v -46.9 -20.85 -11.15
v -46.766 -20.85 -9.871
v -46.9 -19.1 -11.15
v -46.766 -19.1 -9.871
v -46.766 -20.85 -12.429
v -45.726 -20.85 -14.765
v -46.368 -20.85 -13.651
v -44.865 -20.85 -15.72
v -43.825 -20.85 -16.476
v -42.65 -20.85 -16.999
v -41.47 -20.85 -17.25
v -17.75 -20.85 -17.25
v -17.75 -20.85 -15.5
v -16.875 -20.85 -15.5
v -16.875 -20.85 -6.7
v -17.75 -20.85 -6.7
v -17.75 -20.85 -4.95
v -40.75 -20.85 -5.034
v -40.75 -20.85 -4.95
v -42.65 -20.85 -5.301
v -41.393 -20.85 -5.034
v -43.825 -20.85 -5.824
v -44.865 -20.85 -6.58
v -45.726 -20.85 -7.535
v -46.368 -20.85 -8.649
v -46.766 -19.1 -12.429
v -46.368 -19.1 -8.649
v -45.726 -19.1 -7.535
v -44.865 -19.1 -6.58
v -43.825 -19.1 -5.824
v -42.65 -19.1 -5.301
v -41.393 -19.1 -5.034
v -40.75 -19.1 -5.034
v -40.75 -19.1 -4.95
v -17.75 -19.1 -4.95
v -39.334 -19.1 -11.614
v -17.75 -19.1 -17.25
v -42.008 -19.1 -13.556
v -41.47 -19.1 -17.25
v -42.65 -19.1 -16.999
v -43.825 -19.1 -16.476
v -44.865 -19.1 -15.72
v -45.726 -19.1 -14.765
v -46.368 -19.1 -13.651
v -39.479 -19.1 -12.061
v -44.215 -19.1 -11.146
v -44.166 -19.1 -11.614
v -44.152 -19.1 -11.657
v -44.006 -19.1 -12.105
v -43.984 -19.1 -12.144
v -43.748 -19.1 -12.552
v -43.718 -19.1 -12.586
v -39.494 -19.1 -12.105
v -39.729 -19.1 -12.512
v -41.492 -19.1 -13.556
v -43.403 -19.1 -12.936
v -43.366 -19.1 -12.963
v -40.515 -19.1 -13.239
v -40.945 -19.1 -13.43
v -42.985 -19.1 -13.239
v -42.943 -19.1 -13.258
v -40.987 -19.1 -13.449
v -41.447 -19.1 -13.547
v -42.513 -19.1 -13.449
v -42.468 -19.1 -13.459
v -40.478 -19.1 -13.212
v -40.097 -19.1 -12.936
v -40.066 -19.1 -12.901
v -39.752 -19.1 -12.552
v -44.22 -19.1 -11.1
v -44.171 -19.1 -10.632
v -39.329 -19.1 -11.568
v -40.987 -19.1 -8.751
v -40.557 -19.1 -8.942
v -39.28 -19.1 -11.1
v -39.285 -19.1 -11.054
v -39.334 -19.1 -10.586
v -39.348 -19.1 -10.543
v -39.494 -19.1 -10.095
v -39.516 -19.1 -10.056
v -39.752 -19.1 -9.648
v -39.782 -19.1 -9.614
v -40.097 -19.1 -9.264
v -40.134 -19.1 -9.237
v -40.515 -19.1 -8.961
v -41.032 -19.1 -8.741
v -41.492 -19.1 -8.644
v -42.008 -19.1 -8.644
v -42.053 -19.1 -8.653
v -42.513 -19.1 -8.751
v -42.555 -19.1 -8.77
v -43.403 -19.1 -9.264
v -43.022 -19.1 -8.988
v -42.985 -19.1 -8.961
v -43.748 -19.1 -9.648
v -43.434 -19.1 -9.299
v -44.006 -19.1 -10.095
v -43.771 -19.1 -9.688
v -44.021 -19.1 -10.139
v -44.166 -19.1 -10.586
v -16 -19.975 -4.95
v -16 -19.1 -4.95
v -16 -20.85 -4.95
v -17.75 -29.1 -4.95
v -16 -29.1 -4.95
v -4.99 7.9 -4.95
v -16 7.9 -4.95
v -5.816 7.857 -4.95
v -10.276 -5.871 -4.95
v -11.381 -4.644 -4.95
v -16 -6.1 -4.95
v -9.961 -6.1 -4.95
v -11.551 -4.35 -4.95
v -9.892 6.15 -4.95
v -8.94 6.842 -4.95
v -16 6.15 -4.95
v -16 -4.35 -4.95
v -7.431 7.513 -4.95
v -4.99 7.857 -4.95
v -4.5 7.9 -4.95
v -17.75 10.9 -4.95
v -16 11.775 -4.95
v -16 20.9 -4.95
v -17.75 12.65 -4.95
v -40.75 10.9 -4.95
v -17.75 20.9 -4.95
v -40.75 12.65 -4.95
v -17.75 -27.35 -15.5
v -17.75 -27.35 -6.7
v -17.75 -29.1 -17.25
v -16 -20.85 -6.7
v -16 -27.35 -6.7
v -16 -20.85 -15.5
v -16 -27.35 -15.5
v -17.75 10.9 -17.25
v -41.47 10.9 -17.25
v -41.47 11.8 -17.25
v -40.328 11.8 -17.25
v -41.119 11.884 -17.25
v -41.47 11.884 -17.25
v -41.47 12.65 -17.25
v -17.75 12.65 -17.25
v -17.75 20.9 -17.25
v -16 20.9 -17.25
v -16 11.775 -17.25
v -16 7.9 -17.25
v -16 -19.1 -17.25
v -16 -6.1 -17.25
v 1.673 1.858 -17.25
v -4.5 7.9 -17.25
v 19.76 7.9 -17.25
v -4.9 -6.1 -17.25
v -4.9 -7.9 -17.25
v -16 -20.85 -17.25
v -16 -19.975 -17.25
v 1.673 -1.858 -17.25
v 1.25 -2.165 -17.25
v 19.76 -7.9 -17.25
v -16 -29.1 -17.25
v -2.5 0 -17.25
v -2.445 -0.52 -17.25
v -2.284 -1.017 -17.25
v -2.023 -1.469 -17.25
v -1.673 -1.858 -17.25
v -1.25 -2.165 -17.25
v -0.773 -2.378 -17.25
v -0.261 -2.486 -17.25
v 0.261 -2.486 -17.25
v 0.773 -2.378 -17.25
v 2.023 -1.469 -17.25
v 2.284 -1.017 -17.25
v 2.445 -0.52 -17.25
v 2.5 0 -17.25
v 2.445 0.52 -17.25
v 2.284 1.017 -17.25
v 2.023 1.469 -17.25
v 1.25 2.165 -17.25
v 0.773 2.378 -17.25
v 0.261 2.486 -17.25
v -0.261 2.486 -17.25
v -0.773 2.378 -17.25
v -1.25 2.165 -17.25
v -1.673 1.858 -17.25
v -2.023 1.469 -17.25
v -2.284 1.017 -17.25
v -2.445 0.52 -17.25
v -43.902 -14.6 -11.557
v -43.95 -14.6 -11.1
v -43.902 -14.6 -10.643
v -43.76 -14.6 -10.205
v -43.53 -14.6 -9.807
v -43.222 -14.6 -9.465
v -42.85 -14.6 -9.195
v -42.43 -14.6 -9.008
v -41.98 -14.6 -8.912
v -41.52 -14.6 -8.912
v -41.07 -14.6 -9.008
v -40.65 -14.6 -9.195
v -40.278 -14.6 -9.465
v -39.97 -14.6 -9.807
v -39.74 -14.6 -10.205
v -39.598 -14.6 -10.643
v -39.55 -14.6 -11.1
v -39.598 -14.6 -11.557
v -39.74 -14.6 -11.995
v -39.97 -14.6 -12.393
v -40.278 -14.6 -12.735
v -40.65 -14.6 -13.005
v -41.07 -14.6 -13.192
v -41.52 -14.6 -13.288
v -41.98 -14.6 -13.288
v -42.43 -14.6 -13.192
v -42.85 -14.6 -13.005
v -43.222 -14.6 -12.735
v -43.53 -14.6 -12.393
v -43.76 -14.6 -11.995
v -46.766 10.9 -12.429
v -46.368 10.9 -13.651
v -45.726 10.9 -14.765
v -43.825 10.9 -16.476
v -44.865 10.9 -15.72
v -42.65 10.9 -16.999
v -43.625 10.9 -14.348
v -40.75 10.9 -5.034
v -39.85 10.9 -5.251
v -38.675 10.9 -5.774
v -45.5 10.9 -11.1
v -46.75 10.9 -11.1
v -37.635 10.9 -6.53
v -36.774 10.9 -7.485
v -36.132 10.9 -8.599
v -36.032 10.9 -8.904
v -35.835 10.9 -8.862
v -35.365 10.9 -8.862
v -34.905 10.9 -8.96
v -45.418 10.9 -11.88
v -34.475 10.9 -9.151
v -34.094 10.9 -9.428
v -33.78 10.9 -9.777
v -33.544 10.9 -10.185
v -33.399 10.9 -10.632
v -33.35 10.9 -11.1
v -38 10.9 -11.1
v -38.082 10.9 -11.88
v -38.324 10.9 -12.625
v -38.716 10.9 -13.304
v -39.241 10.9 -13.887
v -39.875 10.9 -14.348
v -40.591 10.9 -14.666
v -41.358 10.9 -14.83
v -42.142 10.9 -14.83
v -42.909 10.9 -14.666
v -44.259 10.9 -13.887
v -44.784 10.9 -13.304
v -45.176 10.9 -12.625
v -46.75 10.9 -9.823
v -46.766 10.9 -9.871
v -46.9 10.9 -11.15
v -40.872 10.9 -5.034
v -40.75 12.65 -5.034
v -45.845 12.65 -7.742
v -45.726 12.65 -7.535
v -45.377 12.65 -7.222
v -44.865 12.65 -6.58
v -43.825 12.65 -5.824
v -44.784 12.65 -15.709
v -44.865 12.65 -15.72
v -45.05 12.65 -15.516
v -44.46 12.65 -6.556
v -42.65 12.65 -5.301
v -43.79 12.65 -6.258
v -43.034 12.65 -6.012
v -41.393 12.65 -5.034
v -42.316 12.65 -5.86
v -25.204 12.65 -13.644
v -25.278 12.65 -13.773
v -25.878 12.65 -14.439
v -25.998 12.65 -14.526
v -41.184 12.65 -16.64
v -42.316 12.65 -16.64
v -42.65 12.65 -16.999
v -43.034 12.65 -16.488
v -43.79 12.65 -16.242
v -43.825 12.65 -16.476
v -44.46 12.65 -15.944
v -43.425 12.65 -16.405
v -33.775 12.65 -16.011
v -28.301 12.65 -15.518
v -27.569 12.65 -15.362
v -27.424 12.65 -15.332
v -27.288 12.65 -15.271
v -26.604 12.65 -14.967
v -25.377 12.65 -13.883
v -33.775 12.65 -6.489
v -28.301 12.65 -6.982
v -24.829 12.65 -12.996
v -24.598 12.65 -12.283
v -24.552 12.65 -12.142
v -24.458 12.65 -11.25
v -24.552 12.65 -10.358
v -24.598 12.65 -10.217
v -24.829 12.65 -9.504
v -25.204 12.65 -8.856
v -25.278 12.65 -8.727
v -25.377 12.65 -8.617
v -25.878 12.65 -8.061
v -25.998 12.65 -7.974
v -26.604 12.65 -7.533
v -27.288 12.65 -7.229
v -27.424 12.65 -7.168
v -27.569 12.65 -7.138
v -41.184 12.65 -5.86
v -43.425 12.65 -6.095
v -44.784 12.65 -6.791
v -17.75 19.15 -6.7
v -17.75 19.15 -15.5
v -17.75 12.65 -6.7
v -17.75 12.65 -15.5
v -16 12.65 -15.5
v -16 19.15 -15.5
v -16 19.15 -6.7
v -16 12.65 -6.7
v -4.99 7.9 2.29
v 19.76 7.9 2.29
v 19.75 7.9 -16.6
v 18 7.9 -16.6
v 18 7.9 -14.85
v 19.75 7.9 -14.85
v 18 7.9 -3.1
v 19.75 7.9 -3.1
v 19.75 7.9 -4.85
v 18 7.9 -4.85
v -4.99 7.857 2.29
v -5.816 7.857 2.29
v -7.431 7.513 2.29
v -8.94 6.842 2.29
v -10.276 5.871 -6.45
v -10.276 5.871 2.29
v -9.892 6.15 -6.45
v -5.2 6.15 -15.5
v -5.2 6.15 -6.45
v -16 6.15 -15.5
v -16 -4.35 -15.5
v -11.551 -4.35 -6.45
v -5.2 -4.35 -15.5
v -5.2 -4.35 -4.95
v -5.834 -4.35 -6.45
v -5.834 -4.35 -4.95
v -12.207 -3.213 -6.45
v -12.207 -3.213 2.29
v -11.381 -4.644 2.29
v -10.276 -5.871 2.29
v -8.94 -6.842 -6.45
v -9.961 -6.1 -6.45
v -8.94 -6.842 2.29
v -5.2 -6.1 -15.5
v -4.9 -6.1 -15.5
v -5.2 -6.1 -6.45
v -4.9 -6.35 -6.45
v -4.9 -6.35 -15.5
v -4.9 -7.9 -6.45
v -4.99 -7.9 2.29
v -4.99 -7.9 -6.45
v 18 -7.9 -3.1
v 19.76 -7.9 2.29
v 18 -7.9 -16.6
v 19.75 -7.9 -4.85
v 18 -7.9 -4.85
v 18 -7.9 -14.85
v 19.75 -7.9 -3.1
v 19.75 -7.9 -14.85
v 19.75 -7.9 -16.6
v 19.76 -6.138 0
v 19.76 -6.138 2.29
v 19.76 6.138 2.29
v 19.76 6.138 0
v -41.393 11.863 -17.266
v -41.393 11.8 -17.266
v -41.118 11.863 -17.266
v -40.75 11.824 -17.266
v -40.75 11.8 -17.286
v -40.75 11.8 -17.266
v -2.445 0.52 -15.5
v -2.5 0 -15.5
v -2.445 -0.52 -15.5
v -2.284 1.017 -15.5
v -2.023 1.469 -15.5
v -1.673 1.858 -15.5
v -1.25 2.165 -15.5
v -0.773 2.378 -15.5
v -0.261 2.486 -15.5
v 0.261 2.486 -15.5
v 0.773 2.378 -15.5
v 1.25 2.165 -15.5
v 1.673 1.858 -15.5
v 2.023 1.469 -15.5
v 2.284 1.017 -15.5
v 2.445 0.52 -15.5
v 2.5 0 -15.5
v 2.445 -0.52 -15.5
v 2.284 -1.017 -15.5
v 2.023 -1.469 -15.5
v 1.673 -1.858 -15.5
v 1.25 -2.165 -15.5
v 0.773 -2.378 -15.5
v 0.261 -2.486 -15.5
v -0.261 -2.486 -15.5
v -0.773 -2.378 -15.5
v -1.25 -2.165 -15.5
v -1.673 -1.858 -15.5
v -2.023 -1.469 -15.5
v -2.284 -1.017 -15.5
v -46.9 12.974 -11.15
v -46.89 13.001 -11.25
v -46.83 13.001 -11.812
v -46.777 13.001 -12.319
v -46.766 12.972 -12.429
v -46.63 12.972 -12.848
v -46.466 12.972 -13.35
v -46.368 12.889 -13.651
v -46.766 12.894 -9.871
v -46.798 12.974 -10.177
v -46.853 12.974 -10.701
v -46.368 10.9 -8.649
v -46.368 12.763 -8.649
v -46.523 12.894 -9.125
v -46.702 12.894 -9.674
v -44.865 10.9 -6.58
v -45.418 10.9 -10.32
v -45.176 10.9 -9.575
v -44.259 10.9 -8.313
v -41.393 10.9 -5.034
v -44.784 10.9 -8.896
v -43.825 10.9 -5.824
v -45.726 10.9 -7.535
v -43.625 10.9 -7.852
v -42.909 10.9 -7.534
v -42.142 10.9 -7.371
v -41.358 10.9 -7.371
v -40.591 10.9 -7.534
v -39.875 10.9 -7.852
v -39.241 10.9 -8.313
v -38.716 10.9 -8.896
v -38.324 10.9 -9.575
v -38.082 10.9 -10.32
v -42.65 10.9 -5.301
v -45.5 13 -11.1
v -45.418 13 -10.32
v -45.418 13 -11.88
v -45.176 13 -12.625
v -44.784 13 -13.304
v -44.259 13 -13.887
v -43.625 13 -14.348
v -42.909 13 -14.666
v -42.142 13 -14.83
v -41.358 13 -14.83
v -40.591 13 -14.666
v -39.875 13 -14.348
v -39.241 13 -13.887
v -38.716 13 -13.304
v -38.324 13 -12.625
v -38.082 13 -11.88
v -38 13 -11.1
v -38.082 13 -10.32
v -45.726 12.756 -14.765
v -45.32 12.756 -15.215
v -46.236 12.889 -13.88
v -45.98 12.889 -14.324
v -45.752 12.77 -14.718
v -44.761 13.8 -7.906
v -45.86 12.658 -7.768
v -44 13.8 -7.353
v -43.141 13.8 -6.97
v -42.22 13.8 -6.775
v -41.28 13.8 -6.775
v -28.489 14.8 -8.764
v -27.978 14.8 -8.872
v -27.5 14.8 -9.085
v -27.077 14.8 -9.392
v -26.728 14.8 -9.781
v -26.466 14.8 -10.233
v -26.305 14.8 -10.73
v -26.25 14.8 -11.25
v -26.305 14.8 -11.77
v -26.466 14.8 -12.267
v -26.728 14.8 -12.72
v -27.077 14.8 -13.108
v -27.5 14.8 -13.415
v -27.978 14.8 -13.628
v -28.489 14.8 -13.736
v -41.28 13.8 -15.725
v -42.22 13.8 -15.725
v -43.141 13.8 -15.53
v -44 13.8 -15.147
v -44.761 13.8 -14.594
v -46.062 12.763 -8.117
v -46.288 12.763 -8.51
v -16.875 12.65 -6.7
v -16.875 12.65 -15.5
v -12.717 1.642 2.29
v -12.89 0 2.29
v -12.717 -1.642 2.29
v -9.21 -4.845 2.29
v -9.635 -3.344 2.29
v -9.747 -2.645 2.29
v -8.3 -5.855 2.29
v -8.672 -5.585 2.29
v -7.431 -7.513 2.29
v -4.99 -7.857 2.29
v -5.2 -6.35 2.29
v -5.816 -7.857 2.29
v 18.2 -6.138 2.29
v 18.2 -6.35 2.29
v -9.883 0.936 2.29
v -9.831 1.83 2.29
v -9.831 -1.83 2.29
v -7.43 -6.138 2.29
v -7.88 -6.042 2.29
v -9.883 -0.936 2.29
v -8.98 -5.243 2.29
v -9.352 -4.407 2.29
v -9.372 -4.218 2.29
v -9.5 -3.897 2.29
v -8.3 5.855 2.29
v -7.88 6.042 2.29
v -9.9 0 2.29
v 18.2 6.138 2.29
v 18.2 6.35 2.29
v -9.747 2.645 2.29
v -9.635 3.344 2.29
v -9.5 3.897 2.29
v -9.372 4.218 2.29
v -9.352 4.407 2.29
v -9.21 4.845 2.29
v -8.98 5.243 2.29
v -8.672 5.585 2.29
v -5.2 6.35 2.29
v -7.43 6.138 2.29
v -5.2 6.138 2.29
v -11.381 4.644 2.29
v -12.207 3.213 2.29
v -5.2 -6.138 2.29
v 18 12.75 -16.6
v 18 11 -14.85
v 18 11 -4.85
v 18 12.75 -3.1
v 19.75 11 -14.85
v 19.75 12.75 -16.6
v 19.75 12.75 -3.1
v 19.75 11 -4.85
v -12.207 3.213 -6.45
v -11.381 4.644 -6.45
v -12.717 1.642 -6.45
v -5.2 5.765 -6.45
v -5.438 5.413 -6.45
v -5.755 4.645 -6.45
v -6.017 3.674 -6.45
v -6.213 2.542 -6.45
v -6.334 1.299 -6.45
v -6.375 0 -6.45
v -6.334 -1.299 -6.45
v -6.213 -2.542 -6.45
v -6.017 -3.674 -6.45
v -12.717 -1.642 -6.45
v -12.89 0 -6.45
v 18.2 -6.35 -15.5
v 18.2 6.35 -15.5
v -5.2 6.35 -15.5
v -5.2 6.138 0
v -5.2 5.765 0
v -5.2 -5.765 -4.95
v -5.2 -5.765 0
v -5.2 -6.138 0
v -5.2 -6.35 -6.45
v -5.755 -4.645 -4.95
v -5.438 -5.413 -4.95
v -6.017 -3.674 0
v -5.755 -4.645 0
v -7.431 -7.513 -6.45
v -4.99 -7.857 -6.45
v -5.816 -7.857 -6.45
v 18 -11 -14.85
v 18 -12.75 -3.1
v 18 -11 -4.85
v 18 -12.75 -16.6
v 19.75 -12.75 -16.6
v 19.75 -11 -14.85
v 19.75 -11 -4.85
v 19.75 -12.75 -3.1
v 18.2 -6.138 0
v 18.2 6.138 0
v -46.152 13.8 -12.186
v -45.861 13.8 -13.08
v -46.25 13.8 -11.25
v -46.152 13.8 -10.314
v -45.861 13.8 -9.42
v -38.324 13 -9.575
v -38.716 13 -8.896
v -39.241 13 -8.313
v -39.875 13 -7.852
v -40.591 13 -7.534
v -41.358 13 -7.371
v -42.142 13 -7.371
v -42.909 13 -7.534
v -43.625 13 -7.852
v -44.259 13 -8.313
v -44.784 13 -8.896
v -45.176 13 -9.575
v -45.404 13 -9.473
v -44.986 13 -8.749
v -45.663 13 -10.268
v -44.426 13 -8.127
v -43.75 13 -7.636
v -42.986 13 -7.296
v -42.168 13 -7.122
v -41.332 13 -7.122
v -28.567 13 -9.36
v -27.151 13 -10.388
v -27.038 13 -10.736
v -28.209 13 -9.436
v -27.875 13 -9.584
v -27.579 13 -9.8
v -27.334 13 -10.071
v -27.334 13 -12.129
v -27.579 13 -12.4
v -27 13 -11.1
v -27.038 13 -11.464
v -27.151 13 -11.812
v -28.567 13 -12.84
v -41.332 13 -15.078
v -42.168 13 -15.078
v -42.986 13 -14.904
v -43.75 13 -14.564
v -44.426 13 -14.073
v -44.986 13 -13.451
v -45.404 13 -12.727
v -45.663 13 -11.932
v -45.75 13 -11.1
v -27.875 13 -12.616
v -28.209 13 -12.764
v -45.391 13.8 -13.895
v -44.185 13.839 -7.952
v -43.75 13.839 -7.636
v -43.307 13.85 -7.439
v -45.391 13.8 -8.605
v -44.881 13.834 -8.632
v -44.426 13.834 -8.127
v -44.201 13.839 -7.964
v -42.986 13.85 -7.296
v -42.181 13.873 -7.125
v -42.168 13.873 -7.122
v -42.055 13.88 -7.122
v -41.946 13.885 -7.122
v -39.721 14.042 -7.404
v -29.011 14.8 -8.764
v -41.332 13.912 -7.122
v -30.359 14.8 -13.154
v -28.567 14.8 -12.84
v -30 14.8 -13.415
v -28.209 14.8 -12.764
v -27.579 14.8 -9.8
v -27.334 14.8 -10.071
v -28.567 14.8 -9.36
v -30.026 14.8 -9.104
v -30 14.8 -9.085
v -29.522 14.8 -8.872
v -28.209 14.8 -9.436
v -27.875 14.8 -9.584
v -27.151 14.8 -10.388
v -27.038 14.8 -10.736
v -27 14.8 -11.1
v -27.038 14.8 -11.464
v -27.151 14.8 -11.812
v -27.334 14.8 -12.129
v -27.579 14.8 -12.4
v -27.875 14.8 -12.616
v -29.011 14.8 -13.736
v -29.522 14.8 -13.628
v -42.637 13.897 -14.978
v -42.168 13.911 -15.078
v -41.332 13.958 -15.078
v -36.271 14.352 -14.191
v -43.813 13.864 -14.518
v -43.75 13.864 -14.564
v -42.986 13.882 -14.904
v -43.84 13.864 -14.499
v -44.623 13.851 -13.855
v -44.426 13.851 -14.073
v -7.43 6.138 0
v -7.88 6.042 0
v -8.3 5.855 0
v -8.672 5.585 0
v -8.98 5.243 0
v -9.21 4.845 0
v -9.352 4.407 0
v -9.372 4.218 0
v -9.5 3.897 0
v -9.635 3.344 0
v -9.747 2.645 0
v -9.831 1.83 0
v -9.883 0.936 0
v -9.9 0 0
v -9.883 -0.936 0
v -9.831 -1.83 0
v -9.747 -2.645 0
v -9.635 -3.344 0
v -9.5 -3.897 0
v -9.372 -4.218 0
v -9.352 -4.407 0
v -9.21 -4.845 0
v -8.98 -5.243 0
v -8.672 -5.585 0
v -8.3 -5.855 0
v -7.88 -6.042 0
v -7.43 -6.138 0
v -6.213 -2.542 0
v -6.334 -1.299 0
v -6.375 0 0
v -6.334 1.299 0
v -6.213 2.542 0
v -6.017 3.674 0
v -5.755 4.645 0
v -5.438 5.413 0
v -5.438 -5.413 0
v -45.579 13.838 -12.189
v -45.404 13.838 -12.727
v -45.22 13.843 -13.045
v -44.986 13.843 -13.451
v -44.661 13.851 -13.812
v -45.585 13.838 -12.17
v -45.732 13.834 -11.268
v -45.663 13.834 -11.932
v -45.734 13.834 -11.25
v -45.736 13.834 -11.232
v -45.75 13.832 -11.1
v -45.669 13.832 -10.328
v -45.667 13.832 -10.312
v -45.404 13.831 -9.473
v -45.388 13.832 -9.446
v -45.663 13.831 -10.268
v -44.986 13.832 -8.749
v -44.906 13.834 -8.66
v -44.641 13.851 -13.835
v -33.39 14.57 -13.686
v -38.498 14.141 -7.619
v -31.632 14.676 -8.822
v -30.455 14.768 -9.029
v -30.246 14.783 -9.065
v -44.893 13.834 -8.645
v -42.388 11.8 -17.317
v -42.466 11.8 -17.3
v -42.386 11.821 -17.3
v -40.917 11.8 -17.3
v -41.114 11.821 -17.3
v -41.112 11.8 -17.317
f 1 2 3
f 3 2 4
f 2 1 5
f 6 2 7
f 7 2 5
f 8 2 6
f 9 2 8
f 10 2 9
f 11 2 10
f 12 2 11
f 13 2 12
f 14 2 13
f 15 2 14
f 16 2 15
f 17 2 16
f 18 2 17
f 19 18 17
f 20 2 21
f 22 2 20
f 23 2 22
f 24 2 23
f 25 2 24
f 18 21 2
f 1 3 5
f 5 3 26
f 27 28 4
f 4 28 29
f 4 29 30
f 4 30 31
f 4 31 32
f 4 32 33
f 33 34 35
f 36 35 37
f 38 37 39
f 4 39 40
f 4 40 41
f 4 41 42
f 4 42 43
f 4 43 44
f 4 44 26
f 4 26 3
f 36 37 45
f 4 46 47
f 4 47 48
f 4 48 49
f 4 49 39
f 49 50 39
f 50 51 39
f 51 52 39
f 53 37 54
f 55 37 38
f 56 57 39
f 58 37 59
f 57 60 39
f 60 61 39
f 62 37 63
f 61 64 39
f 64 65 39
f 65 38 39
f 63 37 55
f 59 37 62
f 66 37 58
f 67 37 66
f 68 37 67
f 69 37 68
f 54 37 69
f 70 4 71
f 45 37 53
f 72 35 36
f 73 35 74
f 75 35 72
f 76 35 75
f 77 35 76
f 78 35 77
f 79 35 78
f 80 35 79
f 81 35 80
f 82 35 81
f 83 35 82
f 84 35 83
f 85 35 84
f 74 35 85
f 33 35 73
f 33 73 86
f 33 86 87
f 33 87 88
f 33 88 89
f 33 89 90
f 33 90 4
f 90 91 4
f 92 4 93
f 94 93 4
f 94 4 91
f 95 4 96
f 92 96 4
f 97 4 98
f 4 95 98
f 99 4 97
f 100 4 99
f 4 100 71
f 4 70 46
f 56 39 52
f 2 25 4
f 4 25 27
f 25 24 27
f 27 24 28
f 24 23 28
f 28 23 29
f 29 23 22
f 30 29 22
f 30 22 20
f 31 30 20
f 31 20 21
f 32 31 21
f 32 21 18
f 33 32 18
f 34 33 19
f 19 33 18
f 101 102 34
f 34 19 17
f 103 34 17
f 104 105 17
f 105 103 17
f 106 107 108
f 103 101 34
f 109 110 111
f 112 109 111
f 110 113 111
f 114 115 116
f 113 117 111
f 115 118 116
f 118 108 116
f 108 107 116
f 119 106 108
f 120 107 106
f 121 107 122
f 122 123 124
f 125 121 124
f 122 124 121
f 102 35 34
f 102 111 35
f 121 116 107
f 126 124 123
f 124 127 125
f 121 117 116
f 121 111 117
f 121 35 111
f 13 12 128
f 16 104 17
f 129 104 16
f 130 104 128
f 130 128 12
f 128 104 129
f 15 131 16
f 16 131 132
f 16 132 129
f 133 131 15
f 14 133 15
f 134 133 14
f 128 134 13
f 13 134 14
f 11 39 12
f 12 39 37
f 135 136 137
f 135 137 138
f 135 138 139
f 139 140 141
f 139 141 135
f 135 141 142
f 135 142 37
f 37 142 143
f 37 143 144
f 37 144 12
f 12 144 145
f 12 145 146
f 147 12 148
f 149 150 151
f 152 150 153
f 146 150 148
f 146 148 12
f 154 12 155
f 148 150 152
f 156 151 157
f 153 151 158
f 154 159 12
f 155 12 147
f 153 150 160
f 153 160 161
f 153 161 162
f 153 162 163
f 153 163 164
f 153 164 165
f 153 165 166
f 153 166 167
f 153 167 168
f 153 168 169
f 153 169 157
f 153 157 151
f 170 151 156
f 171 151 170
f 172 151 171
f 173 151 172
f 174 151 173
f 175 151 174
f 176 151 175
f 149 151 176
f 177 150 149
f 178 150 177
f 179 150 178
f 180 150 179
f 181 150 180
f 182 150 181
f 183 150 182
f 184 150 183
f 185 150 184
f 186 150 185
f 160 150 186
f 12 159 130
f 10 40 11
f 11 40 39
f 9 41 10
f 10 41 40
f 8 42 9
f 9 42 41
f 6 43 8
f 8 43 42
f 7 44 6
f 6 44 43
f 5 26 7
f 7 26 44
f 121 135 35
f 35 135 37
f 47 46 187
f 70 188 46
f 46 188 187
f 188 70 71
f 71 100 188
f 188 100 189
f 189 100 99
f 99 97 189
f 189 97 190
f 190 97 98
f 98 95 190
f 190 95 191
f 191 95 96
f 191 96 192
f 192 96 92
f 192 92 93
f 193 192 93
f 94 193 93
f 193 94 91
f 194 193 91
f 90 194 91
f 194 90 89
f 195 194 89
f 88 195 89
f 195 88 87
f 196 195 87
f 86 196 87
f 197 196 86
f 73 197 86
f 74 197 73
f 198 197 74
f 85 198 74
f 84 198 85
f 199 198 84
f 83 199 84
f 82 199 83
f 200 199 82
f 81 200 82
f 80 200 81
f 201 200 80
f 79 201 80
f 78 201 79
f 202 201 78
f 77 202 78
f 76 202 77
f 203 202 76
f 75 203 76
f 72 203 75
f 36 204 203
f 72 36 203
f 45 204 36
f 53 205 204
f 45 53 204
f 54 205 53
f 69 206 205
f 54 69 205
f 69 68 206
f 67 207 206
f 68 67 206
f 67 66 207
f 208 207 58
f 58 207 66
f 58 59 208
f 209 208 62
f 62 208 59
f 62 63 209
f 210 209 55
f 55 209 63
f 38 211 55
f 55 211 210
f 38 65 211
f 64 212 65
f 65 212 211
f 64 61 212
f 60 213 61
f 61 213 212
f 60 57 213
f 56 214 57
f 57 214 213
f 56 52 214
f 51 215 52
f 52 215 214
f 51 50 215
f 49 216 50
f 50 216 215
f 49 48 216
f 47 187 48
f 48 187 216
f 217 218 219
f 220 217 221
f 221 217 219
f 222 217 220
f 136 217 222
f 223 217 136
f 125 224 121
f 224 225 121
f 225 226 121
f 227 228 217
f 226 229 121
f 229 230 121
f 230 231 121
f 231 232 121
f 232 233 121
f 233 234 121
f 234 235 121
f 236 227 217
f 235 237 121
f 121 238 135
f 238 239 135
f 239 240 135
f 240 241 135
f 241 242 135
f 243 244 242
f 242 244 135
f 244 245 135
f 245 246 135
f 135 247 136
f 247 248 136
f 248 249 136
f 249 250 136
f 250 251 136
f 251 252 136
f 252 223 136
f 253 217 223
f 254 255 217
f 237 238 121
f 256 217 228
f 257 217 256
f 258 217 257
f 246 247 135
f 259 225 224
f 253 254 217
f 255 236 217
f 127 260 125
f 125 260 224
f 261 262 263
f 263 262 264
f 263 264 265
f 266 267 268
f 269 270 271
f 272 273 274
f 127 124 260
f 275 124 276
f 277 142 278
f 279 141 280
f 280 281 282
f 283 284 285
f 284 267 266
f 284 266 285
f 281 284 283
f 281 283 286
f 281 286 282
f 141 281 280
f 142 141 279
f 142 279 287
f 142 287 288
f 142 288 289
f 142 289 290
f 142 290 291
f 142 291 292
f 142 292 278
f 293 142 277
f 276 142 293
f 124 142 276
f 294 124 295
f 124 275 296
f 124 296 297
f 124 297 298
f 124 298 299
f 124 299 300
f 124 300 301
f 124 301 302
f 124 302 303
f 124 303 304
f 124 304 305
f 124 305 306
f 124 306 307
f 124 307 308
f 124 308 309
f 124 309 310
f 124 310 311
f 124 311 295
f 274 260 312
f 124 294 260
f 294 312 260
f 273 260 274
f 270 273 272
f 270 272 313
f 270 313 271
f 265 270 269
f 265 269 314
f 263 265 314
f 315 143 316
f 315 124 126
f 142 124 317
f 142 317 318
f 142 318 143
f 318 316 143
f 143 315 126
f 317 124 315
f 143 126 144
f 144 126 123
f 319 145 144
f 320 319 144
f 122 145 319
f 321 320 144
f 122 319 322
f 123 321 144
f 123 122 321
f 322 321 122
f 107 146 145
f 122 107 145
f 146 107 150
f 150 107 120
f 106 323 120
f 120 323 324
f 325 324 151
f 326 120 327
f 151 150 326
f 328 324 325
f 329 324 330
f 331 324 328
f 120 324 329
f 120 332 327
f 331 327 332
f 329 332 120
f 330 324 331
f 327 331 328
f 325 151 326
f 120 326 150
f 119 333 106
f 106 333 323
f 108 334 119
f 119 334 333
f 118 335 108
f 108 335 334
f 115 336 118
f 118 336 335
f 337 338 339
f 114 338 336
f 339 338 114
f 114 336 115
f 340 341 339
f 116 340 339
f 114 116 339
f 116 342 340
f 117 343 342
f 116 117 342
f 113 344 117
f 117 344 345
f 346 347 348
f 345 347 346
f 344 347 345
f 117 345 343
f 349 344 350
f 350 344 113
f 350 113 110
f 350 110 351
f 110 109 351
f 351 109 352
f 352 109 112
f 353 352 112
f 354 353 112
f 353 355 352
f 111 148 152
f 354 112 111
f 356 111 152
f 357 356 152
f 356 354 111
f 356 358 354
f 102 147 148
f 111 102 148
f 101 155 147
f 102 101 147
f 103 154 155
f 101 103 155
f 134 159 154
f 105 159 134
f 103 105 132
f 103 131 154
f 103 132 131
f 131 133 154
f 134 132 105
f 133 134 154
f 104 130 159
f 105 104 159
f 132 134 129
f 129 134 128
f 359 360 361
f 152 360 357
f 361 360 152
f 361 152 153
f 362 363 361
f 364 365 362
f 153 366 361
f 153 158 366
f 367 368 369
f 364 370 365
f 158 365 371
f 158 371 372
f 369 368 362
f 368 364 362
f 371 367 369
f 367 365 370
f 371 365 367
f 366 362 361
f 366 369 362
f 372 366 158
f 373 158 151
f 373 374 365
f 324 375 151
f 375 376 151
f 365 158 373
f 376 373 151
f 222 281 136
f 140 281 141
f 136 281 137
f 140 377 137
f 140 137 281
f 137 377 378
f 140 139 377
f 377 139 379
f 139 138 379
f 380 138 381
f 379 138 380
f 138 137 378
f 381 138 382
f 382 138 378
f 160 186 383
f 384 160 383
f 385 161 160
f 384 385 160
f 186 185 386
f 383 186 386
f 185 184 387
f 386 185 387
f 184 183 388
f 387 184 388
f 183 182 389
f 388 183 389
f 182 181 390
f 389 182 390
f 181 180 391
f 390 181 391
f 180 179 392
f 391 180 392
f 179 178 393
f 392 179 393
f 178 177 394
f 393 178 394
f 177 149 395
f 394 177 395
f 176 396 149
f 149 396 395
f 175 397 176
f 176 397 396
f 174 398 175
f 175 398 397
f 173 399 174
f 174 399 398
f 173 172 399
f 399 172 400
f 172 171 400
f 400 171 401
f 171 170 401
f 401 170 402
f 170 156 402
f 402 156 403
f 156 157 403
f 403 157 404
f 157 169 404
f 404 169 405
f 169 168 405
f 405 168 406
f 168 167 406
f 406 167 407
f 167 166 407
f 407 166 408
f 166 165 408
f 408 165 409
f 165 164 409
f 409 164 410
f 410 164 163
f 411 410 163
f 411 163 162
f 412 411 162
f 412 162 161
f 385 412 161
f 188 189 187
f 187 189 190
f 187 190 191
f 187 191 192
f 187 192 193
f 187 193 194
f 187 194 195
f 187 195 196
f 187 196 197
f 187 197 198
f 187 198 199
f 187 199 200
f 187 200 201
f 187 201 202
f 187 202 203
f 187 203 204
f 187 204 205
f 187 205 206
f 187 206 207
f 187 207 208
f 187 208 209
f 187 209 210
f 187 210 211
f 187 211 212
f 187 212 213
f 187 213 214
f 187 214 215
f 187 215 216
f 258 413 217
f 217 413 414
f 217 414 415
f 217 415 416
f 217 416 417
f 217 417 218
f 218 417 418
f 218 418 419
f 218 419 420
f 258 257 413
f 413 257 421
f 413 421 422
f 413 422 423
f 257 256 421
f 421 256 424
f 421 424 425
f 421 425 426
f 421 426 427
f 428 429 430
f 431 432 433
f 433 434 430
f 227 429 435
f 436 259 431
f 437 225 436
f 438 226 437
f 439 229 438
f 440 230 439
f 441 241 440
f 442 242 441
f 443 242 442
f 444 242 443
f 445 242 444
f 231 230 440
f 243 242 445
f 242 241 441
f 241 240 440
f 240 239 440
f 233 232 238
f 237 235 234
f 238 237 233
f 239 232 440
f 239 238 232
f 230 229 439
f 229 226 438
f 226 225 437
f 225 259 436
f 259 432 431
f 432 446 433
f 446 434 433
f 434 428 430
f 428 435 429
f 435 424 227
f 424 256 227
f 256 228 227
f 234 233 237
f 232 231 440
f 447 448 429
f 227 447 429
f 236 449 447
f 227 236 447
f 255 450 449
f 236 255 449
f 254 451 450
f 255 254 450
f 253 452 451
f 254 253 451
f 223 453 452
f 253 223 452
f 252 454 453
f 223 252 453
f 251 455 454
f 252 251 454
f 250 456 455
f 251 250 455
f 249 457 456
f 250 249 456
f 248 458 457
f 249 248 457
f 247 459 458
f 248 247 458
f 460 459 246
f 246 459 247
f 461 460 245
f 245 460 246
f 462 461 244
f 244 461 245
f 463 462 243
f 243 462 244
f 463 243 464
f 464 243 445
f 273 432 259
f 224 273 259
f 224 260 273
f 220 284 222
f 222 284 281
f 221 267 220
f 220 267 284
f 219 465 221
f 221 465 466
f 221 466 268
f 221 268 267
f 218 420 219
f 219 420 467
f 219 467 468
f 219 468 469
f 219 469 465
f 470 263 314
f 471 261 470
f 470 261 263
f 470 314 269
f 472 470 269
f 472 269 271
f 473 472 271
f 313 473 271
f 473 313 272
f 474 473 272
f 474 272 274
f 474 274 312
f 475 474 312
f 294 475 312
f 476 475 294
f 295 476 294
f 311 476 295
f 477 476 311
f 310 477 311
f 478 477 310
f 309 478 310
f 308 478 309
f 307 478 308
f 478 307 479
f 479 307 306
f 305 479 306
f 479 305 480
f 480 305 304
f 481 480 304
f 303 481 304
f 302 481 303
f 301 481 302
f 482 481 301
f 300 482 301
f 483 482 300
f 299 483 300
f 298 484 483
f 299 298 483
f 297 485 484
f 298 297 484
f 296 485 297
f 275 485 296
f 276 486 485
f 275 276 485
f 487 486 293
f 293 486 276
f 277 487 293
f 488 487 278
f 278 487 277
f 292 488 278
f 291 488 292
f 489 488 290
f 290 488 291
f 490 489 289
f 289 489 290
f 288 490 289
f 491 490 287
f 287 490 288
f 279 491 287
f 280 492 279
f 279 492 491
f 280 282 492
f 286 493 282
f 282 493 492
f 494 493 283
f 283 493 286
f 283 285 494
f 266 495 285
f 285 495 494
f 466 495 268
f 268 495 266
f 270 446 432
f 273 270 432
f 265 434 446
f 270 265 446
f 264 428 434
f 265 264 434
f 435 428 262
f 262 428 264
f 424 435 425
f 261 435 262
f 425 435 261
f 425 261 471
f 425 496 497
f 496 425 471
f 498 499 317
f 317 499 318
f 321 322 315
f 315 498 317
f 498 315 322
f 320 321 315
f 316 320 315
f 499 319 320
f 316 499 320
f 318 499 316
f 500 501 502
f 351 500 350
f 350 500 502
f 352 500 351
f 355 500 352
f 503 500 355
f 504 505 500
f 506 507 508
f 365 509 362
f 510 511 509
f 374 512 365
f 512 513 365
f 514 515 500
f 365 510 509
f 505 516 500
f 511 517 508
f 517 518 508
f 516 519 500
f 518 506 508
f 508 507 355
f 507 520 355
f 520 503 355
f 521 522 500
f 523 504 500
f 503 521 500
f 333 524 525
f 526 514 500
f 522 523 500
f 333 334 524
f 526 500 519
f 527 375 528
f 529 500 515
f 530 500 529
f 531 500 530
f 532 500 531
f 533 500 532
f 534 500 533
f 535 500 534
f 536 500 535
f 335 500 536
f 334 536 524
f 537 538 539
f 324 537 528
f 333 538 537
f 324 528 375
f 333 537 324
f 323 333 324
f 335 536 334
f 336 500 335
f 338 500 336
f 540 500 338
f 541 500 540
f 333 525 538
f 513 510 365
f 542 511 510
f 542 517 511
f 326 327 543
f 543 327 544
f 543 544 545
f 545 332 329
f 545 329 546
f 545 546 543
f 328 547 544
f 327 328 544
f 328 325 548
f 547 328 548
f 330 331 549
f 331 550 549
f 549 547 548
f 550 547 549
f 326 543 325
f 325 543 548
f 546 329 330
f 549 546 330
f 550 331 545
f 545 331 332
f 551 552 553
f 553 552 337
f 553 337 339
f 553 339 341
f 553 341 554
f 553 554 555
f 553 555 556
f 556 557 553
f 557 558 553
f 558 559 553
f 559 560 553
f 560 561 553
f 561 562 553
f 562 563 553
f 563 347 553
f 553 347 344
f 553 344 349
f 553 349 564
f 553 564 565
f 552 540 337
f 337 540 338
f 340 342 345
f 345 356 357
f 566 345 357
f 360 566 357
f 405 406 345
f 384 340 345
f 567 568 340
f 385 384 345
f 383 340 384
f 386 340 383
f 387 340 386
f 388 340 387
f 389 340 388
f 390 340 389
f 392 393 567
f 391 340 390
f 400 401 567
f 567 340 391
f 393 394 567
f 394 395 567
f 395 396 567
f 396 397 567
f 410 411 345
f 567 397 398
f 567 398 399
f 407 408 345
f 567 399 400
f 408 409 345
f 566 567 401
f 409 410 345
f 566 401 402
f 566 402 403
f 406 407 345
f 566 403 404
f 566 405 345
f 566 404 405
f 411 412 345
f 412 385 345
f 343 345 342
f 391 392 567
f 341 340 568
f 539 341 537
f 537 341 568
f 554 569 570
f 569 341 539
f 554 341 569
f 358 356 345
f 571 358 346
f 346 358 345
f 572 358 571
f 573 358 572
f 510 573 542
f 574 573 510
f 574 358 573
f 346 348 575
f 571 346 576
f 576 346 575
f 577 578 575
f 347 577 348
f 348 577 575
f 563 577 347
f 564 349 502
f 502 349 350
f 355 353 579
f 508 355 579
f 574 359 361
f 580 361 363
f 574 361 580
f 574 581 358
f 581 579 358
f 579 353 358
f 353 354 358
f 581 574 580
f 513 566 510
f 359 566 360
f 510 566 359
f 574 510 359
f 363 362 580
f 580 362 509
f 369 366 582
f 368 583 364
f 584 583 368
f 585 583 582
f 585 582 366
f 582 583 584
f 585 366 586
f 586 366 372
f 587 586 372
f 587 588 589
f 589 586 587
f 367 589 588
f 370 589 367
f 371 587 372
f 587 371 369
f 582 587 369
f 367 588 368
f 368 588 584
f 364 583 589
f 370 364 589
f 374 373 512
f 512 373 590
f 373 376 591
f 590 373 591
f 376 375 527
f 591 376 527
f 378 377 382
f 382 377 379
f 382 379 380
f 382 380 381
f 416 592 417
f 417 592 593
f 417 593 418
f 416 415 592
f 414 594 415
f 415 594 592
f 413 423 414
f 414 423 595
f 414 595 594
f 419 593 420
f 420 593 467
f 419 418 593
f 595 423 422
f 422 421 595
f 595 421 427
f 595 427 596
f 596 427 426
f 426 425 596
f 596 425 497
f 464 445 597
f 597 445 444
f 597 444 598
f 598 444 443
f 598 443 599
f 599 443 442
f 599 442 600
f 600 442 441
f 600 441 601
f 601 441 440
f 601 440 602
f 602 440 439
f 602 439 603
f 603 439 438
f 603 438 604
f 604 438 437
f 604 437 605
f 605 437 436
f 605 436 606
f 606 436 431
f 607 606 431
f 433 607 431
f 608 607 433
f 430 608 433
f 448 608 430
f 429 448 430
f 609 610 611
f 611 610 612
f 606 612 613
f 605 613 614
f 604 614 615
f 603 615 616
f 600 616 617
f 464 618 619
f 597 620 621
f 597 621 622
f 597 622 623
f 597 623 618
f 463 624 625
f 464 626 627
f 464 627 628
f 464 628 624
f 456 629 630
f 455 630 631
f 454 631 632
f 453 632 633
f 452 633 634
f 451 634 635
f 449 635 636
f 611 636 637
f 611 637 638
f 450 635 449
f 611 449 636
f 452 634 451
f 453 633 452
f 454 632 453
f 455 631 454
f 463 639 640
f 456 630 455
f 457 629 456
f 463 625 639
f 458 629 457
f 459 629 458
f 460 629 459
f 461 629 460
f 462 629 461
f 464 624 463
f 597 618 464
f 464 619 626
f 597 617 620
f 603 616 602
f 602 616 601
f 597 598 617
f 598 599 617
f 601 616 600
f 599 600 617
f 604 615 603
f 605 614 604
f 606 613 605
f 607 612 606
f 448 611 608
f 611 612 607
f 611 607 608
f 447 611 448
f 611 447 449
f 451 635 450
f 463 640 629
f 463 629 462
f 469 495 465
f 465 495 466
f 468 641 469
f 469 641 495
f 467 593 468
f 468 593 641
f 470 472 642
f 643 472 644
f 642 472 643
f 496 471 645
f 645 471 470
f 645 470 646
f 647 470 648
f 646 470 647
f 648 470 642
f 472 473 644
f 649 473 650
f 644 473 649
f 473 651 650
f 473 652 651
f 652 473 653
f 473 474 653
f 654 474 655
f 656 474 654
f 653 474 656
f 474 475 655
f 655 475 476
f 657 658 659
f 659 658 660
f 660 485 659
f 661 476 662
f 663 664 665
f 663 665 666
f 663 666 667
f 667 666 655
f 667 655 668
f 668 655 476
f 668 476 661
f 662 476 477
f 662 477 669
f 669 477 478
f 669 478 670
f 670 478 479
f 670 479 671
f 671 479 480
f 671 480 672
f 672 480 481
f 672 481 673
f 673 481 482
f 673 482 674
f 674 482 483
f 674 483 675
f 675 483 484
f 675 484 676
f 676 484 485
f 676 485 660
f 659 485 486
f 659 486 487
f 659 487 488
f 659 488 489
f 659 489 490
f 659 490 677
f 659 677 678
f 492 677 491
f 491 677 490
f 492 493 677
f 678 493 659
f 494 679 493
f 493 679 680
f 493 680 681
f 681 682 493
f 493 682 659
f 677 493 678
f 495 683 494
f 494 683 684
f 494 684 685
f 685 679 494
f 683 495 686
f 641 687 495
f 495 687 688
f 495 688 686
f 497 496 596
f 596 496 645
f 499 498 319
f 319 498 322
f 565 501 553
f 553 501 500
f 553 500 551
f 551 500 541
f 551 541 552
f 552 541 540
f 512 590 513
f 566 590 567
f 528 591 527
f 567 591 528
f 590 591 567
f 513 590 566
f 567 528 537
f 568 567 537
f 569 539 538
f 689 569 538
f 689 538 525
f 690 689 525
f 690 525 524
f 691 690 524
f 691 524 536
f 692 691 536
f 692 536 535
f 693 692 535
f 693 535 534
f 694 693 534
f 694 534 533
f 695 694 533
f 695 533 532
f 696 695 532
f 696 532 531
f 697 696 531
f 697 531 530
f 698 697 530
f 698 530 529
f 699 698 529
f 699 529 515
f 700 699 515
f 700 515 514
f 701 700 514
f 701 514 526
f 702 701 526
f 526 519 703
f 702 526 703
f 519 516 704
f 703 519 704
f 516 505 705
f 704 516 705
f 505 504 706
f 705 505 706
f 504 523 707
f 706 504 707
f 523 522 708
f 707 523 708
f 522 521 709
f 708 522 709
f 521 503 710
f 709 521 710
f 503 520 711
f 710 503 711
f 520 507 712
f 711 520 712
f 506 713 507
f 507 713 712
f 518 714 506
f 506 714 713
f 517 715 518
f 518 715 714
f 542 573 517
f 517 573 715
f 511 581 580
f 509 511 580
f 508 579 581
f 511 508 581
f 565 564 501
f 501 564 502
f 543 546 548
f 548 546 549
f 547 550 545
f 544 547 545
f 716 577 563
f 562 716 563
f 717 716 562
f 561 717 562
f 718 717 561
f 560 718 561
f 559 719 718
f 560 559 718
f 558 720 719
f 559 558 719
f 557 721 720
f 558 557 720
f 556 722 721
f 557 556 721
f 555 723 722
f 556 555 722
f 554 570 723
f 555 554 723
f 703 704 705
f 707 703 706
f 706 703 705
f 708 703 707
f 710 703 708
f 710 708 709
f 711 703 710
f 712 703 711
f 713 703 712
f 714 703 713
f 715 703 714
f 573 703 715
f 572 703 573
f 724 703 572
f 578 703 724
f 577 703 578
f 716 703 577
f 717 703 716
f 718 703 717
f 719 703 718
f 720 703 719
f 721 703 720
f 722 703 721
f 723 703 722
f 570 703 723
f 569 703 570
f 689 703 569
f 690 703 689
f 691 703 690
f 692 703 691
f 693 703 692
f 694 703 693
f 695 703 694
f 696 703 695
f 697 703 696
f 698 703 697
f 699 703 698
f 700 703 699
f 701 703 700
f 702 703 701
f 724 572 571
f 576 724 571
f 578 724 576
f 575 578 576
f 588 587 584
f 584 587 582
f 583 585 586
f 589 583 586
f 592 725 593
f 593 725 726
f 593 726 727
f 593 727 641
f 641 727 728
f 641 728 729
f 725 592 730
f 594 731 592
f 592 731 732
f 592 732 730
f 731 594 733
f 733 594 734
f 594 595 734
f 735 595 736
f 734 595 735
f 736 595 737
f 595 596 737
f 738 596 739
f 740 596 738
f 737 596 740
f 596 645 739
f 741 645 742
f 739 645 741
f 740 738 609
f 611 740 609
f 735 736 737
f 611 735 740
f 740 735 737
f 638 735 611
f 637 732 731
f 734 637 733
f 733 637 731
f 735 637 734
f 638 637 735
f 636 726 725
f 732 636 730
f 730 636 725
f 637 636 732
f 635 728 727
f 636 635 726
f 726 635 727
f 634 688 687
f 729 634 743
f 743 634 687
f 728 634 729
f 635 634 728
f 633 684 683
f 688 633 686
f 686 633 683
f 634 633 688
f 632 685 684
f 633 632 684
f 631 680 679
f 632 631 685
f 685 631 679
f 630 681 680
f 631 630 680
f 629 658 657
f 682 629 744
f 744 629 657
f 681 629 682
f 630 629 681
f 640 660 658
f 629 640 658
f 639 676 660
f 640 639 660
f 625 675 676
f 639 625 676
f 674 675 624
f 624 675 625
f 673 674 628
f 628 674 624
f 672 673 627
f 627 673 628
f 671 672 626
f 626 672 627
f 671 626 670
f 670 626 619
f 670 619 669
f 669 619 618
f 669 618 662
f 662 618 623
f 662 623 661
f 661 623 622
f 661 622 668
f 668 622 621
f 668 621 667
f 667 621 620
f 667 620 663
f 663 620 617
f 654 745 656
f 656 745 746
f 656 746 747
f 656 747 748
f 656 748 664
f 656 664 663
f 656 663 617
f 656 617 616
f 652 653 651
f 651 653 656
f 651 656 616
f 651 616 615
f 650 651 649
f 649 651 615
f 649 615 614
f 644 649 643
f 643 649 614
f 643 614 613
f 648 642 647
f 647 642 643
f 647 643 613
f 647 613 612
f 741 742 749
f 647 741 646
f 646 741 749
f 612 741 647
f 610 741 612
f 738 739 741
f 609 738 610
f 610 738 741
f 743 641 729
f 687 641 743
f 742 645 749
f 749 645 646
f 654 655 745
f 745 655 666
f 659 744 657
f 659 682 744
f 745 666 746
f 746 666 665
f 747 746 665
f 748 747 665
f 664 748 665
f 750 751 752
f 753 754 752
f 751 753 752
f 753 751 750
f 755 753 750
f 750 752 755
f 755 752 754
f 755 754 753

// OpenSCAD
// file: servo-s2309s.scad
ServoBody=[23,12.3,22];
FlangeToBottom=15.5;
Flange=[31.8,12.3,2.3];
FlangeBevel=2.2;
AxleOffset=5;
AxelRadius=4.9/2; //Without adaptor

wall=1.3;

//The amount of extra space around the servo.
ServoPadding=0;

BoltRadius=1;
$fs=0.2;

//************************************************************************
//*** Enable one of these to draw something from the this library of parts.
//***
//*** A number in the bracket of an adaptor part will rotate it by that
//*** number of degrees.
//************************************************************************
//draw_servo();
//Small_arm_adaptor(11);
//cross_adaptor(30);
//long_armed_adaptor(45);

//clamp();
//short_clamp();



module draw_servo(spin) rotate(spin){
//Main body
color("gray") translate([ -AxleOffset-ServoPadding, -ServoPadding-(ServoBody[1]/2), -FlangeToBottom ])

cube([ServoBody[0]+(ServoPadding*2),ServoBody[1]+(ServoPadding*2),ServoBody[2]]);

//Drive shaft
color("white") cylinder(r=AxelRadius, h=14);

//screw hole
//color("white") cylinder(r=AxelRadius/4,h=20,$fs=0.2);

 color("gray") {difference(){
cylinder(r=ServoBody[1]/2, h=10);
translate([-AxleOffset-ServoBody[1], -ServoBody[1]/2, 0.00 ])
 cube(ServoBody[1]);
}
translate([ ServoBody[1]/2, 0.00, 0.00 ])
 cylinder(r=4.5/2, h=10);
translate([ ServoBody[1]/2+3.5, 0.00, 0.00 ])
cylinder(r=2.2/2, h=7);}

//draw the flange
translate([-FlangeBevel-AxleOffset,FlangeBevel-Flange[1]/2,0]){
color("gray") minkowski(){
cube([Flange[0]-(FlangeBevel*2),Flange[1]-(FlangeBevel*2),0.001]);
scale([1,1,1])cylinder(r=FlangeBevel, h=Flange[2]);
}
}
translate([FlangeBevel+AxleOffset-(Flange[0]/2)-0.4,0,0]) scale([0.8,4.5,1]) color("gray") cylinder(h=Flange[2],r=1);
translate([FlangeBevel+AxleOffset+(Flange[0]/2)-1,0,0]) scale([0.8,4.5,1]) color("gray") cylinder(h=Flange[2],r=1);
}




module Small_arm_adaptor(turn_head){
color("White"){
translate([0,0,12.1]) hull(){
  cylinder(r=8/2,h=2);
  rotate([0,0,turn_head])
  translate([13,0,0]) cylinder(r=3.5/2,h=2);
}
translate([ 0.00, 0.00, 9.9 ]) cylinder(r=7.5/2,h=4);}}

module long_armed_adaptor(turn_head){
color("White"){
translate([0,0,12.1]) rotate([0,0,turn_head]) hull(){
  cylinder(r=7.2/2,h=2);
  translate([16.5,0,0]) cylinder(r=5/2,h=2);
  translate([-16.5,0,0]) cylinder(r=5/2,h=2);
}
translate([ 0.00, 0.00, 9.9 ]) cylinder(r=7.2/2,h=4);
}}

module cross_adaptor(turn_head){
color("White"){
translate([0,0,12.1]){
cylinder(r=8/2,h=2);
hull() rotate([0,0,turn_head]) {
  cylinder(r=4/2,h=2);
  translate([12.5,0,0]) cylinder(r=3/2,h=2);
  translate([-12.5,0,0]) cylinder(r=3/2,h=2); }
hull() rotate([0,0,turn_head]) {
  cylinder(r=4/2,h=2);
  translate([0,10.5,0]) cylinder(r=3/2,h=2);
  translate([0,-10.5,0]) cylinder(r=3/2,h=2); }
translate([ 0.00, 0.00, -2.1 ]) cylinder(r=7.2/2,h=4);
}}}


module beam(beam_length){
translate([0,-7,0])
difference(){
cube ([beam_length,14,12.3]);
translate([-wall,wall,wall])
cube ([beam_length+(wall*2),14-(wall*2),12]);//z=6.4 for hollow beam.

for (x=[5:15:beam_length-17]){
translate ([x+(beam_length/12),7,-3]){
cylinder(r=2,h=20);
translate([0,20,3+(12.3/2)])
rotate([90,0,0])
cylinder(r=2,h=40);}
}}}


module clamp(){
difference(){
union(){
translate([-6-wall,-10-wall,0])
cube([30+wall,30+(wall*2),12.3]);
translate([18,-10.9,6]) rotate([90,180,0])hull(){
  cylinder(r2=9/2,r1=12.2/2,h=2);
  translate([13,0,0]) cylinder(r2=5/2,r1=5,h=3);
}
}

//Hollow
translate([-6,-10,-0.1]) cube([33.2,30,12.5]);

//end rounding
for (y = [-5, 25]){
translate([17,y,12.2/2])rotate([90,0,0])difference(){
translate([0,-12.3/2,0])cube(12.5);
cylinder(r=12.3/2,h=10);}}


translate([18,0,12.3/2]){
draw_servo([90,180,0]);
rotate([90,180,0]) Small_arm_adaptor();
}
}
//Pin under servo
rotate([90,0,0]) translate([18,12.3/2,-20.5]) cylinder(r1=2.5,r2=2.2,h=5);

//Cable duct
translate([-6-(wall/2),20+(wall*0.5),0])
rotate([0,0,90]){
translate([-wall/2,-wall/2,0])
difference(){
cube([10,wall,12.3]);
translate([wall,-0.1,wall])
cube([10-(wall*2),10,12.3-(wall*2)]);
}

}
translate([-6-(wall/2),-10-(wall/2),0]) 
rotate([0,0,270]){
translate([-wall/2,-wall/2,0])
difference(){
	cube([10,wall,12.3]);
	translate([wall,-0.1,wall])
	cube([10-(wall*2),10,12.3-(wall*2)]);
}
}

}




module short_clamp(){
difference(){
union(){
translate([-6-wall,-10-wall,0])
cube([30+wall,30+(wall*2),12.3]);
translate([18,-10.9,6]) rotate([90,180,0])hull(){
  cylinder(r2=9/2,r1=12.2/2,h=2);
  translate([13,0,0]) cylinder(r2=5/2,r1=5,h=3);
}
}

//Hollow
translate([-6,-10,-0.1]) cube([33.2,30,12.5]);

//end rounding
for (y = [-5, 25]){
translate([17,y,12.2/2])rotate([90,0,0])difference(){
translate([0,-12.3/2,0])cube(12.5);
cylinder(r=12.3/2,h=10);}}


translate([18,0,12.3/2]){
#draw_servo([90,0,0]);
rotate([90,180,0]) Small_arm_adaptor();
}
}
//Pin under servo
rotate([90,0,0]) translate([18,12.3/2,-20.5]) cylinder(r1=2.5,r2=2.2,h=5);

//Cable duct
translate([-6-(wall/2),20+(wall*0.5),0])
rotate([0,0,90]){
translate([-wall/2,-wall/2,0])
difference(){
cube([10,wall,12.3]);
translate([wall,-0.1,wall])
cube([10-(wall*2),10,12.3-(wall*2)]);
}

}
translate([-6-(wall/2),-10-(wall/2),0]) 
rotate([0,0,270]){
translate([-wall/2,-wall/2,0])
difference(){
	cube([10,wall,12.3]);
	translate([wall,-0.1,wall])
	cube([10-(wall*2),10,12.3-(wall*2)]);
}
}

}
// main file
include <./servo-s2309s.scad>;
wall=1.75;
BeamLength=12;
//The amount of extra space around the servo.
ServoPadding=0.2;


difference(){
translate([-AxleOffset+0.01,-wall-ServoBody[1]/2,-FlangeToBottom-wall]) 
union(){
cube([ServoBody[0]+wall,ServoBody[1]+wall*2,FlangeToBottom+wall+Flange[2]-0.01]);
translate([0,wall+ServoBody[1]/2,0])
cylinder(r=wall+ServoBody[1]/2,h=FlangeToBottom+wall+Flange[2]-0.01);
}
draw_servo([0,0,0]);

//cable out.
translate([-14.9,-10,-FlangeToBottom-wall-0.2])
cube([10,20,11]);
//Arch for servo cable.
translate([-4.5,0,-8]) scale([0.3,1,1]) cylinder(r=12.5/2,h=9);



//pivot hole
translate([0,0,-FlangeToBottom+0.1])
rotate([0,180,0]) cylinder(r=2.5, h=6);
}

difference(){
rotate([0,0,180])
translate([1+wall*2,7-wall-ServoBody[1]/2,-FlangeToBottom-wall])
beam(BeamLength);

draw_servo([0,0,0]);
}



rotate([0,0,180])
translate([BeamLength+10+wall,7-wall-ServoBody[1]/2,-FlangeToBottom-wall]) clamp();



//cable hoop.
translate([18,7,-16.6])
difference(){
cube([wall,4+wall,10+(wall*2)]);
translate([-0.1,0,wall]) cube([wall+0.2,4,10]);
}

//mirror cable hoop.
rotate([180,0,0])
translate([18,7,6.6-(wall*2)])
difference(){
cube([wall,4+wall,10+(wall*2)]);
translate([-0.1,0,wall]) cube([wall+0.2,4,10]);
}
